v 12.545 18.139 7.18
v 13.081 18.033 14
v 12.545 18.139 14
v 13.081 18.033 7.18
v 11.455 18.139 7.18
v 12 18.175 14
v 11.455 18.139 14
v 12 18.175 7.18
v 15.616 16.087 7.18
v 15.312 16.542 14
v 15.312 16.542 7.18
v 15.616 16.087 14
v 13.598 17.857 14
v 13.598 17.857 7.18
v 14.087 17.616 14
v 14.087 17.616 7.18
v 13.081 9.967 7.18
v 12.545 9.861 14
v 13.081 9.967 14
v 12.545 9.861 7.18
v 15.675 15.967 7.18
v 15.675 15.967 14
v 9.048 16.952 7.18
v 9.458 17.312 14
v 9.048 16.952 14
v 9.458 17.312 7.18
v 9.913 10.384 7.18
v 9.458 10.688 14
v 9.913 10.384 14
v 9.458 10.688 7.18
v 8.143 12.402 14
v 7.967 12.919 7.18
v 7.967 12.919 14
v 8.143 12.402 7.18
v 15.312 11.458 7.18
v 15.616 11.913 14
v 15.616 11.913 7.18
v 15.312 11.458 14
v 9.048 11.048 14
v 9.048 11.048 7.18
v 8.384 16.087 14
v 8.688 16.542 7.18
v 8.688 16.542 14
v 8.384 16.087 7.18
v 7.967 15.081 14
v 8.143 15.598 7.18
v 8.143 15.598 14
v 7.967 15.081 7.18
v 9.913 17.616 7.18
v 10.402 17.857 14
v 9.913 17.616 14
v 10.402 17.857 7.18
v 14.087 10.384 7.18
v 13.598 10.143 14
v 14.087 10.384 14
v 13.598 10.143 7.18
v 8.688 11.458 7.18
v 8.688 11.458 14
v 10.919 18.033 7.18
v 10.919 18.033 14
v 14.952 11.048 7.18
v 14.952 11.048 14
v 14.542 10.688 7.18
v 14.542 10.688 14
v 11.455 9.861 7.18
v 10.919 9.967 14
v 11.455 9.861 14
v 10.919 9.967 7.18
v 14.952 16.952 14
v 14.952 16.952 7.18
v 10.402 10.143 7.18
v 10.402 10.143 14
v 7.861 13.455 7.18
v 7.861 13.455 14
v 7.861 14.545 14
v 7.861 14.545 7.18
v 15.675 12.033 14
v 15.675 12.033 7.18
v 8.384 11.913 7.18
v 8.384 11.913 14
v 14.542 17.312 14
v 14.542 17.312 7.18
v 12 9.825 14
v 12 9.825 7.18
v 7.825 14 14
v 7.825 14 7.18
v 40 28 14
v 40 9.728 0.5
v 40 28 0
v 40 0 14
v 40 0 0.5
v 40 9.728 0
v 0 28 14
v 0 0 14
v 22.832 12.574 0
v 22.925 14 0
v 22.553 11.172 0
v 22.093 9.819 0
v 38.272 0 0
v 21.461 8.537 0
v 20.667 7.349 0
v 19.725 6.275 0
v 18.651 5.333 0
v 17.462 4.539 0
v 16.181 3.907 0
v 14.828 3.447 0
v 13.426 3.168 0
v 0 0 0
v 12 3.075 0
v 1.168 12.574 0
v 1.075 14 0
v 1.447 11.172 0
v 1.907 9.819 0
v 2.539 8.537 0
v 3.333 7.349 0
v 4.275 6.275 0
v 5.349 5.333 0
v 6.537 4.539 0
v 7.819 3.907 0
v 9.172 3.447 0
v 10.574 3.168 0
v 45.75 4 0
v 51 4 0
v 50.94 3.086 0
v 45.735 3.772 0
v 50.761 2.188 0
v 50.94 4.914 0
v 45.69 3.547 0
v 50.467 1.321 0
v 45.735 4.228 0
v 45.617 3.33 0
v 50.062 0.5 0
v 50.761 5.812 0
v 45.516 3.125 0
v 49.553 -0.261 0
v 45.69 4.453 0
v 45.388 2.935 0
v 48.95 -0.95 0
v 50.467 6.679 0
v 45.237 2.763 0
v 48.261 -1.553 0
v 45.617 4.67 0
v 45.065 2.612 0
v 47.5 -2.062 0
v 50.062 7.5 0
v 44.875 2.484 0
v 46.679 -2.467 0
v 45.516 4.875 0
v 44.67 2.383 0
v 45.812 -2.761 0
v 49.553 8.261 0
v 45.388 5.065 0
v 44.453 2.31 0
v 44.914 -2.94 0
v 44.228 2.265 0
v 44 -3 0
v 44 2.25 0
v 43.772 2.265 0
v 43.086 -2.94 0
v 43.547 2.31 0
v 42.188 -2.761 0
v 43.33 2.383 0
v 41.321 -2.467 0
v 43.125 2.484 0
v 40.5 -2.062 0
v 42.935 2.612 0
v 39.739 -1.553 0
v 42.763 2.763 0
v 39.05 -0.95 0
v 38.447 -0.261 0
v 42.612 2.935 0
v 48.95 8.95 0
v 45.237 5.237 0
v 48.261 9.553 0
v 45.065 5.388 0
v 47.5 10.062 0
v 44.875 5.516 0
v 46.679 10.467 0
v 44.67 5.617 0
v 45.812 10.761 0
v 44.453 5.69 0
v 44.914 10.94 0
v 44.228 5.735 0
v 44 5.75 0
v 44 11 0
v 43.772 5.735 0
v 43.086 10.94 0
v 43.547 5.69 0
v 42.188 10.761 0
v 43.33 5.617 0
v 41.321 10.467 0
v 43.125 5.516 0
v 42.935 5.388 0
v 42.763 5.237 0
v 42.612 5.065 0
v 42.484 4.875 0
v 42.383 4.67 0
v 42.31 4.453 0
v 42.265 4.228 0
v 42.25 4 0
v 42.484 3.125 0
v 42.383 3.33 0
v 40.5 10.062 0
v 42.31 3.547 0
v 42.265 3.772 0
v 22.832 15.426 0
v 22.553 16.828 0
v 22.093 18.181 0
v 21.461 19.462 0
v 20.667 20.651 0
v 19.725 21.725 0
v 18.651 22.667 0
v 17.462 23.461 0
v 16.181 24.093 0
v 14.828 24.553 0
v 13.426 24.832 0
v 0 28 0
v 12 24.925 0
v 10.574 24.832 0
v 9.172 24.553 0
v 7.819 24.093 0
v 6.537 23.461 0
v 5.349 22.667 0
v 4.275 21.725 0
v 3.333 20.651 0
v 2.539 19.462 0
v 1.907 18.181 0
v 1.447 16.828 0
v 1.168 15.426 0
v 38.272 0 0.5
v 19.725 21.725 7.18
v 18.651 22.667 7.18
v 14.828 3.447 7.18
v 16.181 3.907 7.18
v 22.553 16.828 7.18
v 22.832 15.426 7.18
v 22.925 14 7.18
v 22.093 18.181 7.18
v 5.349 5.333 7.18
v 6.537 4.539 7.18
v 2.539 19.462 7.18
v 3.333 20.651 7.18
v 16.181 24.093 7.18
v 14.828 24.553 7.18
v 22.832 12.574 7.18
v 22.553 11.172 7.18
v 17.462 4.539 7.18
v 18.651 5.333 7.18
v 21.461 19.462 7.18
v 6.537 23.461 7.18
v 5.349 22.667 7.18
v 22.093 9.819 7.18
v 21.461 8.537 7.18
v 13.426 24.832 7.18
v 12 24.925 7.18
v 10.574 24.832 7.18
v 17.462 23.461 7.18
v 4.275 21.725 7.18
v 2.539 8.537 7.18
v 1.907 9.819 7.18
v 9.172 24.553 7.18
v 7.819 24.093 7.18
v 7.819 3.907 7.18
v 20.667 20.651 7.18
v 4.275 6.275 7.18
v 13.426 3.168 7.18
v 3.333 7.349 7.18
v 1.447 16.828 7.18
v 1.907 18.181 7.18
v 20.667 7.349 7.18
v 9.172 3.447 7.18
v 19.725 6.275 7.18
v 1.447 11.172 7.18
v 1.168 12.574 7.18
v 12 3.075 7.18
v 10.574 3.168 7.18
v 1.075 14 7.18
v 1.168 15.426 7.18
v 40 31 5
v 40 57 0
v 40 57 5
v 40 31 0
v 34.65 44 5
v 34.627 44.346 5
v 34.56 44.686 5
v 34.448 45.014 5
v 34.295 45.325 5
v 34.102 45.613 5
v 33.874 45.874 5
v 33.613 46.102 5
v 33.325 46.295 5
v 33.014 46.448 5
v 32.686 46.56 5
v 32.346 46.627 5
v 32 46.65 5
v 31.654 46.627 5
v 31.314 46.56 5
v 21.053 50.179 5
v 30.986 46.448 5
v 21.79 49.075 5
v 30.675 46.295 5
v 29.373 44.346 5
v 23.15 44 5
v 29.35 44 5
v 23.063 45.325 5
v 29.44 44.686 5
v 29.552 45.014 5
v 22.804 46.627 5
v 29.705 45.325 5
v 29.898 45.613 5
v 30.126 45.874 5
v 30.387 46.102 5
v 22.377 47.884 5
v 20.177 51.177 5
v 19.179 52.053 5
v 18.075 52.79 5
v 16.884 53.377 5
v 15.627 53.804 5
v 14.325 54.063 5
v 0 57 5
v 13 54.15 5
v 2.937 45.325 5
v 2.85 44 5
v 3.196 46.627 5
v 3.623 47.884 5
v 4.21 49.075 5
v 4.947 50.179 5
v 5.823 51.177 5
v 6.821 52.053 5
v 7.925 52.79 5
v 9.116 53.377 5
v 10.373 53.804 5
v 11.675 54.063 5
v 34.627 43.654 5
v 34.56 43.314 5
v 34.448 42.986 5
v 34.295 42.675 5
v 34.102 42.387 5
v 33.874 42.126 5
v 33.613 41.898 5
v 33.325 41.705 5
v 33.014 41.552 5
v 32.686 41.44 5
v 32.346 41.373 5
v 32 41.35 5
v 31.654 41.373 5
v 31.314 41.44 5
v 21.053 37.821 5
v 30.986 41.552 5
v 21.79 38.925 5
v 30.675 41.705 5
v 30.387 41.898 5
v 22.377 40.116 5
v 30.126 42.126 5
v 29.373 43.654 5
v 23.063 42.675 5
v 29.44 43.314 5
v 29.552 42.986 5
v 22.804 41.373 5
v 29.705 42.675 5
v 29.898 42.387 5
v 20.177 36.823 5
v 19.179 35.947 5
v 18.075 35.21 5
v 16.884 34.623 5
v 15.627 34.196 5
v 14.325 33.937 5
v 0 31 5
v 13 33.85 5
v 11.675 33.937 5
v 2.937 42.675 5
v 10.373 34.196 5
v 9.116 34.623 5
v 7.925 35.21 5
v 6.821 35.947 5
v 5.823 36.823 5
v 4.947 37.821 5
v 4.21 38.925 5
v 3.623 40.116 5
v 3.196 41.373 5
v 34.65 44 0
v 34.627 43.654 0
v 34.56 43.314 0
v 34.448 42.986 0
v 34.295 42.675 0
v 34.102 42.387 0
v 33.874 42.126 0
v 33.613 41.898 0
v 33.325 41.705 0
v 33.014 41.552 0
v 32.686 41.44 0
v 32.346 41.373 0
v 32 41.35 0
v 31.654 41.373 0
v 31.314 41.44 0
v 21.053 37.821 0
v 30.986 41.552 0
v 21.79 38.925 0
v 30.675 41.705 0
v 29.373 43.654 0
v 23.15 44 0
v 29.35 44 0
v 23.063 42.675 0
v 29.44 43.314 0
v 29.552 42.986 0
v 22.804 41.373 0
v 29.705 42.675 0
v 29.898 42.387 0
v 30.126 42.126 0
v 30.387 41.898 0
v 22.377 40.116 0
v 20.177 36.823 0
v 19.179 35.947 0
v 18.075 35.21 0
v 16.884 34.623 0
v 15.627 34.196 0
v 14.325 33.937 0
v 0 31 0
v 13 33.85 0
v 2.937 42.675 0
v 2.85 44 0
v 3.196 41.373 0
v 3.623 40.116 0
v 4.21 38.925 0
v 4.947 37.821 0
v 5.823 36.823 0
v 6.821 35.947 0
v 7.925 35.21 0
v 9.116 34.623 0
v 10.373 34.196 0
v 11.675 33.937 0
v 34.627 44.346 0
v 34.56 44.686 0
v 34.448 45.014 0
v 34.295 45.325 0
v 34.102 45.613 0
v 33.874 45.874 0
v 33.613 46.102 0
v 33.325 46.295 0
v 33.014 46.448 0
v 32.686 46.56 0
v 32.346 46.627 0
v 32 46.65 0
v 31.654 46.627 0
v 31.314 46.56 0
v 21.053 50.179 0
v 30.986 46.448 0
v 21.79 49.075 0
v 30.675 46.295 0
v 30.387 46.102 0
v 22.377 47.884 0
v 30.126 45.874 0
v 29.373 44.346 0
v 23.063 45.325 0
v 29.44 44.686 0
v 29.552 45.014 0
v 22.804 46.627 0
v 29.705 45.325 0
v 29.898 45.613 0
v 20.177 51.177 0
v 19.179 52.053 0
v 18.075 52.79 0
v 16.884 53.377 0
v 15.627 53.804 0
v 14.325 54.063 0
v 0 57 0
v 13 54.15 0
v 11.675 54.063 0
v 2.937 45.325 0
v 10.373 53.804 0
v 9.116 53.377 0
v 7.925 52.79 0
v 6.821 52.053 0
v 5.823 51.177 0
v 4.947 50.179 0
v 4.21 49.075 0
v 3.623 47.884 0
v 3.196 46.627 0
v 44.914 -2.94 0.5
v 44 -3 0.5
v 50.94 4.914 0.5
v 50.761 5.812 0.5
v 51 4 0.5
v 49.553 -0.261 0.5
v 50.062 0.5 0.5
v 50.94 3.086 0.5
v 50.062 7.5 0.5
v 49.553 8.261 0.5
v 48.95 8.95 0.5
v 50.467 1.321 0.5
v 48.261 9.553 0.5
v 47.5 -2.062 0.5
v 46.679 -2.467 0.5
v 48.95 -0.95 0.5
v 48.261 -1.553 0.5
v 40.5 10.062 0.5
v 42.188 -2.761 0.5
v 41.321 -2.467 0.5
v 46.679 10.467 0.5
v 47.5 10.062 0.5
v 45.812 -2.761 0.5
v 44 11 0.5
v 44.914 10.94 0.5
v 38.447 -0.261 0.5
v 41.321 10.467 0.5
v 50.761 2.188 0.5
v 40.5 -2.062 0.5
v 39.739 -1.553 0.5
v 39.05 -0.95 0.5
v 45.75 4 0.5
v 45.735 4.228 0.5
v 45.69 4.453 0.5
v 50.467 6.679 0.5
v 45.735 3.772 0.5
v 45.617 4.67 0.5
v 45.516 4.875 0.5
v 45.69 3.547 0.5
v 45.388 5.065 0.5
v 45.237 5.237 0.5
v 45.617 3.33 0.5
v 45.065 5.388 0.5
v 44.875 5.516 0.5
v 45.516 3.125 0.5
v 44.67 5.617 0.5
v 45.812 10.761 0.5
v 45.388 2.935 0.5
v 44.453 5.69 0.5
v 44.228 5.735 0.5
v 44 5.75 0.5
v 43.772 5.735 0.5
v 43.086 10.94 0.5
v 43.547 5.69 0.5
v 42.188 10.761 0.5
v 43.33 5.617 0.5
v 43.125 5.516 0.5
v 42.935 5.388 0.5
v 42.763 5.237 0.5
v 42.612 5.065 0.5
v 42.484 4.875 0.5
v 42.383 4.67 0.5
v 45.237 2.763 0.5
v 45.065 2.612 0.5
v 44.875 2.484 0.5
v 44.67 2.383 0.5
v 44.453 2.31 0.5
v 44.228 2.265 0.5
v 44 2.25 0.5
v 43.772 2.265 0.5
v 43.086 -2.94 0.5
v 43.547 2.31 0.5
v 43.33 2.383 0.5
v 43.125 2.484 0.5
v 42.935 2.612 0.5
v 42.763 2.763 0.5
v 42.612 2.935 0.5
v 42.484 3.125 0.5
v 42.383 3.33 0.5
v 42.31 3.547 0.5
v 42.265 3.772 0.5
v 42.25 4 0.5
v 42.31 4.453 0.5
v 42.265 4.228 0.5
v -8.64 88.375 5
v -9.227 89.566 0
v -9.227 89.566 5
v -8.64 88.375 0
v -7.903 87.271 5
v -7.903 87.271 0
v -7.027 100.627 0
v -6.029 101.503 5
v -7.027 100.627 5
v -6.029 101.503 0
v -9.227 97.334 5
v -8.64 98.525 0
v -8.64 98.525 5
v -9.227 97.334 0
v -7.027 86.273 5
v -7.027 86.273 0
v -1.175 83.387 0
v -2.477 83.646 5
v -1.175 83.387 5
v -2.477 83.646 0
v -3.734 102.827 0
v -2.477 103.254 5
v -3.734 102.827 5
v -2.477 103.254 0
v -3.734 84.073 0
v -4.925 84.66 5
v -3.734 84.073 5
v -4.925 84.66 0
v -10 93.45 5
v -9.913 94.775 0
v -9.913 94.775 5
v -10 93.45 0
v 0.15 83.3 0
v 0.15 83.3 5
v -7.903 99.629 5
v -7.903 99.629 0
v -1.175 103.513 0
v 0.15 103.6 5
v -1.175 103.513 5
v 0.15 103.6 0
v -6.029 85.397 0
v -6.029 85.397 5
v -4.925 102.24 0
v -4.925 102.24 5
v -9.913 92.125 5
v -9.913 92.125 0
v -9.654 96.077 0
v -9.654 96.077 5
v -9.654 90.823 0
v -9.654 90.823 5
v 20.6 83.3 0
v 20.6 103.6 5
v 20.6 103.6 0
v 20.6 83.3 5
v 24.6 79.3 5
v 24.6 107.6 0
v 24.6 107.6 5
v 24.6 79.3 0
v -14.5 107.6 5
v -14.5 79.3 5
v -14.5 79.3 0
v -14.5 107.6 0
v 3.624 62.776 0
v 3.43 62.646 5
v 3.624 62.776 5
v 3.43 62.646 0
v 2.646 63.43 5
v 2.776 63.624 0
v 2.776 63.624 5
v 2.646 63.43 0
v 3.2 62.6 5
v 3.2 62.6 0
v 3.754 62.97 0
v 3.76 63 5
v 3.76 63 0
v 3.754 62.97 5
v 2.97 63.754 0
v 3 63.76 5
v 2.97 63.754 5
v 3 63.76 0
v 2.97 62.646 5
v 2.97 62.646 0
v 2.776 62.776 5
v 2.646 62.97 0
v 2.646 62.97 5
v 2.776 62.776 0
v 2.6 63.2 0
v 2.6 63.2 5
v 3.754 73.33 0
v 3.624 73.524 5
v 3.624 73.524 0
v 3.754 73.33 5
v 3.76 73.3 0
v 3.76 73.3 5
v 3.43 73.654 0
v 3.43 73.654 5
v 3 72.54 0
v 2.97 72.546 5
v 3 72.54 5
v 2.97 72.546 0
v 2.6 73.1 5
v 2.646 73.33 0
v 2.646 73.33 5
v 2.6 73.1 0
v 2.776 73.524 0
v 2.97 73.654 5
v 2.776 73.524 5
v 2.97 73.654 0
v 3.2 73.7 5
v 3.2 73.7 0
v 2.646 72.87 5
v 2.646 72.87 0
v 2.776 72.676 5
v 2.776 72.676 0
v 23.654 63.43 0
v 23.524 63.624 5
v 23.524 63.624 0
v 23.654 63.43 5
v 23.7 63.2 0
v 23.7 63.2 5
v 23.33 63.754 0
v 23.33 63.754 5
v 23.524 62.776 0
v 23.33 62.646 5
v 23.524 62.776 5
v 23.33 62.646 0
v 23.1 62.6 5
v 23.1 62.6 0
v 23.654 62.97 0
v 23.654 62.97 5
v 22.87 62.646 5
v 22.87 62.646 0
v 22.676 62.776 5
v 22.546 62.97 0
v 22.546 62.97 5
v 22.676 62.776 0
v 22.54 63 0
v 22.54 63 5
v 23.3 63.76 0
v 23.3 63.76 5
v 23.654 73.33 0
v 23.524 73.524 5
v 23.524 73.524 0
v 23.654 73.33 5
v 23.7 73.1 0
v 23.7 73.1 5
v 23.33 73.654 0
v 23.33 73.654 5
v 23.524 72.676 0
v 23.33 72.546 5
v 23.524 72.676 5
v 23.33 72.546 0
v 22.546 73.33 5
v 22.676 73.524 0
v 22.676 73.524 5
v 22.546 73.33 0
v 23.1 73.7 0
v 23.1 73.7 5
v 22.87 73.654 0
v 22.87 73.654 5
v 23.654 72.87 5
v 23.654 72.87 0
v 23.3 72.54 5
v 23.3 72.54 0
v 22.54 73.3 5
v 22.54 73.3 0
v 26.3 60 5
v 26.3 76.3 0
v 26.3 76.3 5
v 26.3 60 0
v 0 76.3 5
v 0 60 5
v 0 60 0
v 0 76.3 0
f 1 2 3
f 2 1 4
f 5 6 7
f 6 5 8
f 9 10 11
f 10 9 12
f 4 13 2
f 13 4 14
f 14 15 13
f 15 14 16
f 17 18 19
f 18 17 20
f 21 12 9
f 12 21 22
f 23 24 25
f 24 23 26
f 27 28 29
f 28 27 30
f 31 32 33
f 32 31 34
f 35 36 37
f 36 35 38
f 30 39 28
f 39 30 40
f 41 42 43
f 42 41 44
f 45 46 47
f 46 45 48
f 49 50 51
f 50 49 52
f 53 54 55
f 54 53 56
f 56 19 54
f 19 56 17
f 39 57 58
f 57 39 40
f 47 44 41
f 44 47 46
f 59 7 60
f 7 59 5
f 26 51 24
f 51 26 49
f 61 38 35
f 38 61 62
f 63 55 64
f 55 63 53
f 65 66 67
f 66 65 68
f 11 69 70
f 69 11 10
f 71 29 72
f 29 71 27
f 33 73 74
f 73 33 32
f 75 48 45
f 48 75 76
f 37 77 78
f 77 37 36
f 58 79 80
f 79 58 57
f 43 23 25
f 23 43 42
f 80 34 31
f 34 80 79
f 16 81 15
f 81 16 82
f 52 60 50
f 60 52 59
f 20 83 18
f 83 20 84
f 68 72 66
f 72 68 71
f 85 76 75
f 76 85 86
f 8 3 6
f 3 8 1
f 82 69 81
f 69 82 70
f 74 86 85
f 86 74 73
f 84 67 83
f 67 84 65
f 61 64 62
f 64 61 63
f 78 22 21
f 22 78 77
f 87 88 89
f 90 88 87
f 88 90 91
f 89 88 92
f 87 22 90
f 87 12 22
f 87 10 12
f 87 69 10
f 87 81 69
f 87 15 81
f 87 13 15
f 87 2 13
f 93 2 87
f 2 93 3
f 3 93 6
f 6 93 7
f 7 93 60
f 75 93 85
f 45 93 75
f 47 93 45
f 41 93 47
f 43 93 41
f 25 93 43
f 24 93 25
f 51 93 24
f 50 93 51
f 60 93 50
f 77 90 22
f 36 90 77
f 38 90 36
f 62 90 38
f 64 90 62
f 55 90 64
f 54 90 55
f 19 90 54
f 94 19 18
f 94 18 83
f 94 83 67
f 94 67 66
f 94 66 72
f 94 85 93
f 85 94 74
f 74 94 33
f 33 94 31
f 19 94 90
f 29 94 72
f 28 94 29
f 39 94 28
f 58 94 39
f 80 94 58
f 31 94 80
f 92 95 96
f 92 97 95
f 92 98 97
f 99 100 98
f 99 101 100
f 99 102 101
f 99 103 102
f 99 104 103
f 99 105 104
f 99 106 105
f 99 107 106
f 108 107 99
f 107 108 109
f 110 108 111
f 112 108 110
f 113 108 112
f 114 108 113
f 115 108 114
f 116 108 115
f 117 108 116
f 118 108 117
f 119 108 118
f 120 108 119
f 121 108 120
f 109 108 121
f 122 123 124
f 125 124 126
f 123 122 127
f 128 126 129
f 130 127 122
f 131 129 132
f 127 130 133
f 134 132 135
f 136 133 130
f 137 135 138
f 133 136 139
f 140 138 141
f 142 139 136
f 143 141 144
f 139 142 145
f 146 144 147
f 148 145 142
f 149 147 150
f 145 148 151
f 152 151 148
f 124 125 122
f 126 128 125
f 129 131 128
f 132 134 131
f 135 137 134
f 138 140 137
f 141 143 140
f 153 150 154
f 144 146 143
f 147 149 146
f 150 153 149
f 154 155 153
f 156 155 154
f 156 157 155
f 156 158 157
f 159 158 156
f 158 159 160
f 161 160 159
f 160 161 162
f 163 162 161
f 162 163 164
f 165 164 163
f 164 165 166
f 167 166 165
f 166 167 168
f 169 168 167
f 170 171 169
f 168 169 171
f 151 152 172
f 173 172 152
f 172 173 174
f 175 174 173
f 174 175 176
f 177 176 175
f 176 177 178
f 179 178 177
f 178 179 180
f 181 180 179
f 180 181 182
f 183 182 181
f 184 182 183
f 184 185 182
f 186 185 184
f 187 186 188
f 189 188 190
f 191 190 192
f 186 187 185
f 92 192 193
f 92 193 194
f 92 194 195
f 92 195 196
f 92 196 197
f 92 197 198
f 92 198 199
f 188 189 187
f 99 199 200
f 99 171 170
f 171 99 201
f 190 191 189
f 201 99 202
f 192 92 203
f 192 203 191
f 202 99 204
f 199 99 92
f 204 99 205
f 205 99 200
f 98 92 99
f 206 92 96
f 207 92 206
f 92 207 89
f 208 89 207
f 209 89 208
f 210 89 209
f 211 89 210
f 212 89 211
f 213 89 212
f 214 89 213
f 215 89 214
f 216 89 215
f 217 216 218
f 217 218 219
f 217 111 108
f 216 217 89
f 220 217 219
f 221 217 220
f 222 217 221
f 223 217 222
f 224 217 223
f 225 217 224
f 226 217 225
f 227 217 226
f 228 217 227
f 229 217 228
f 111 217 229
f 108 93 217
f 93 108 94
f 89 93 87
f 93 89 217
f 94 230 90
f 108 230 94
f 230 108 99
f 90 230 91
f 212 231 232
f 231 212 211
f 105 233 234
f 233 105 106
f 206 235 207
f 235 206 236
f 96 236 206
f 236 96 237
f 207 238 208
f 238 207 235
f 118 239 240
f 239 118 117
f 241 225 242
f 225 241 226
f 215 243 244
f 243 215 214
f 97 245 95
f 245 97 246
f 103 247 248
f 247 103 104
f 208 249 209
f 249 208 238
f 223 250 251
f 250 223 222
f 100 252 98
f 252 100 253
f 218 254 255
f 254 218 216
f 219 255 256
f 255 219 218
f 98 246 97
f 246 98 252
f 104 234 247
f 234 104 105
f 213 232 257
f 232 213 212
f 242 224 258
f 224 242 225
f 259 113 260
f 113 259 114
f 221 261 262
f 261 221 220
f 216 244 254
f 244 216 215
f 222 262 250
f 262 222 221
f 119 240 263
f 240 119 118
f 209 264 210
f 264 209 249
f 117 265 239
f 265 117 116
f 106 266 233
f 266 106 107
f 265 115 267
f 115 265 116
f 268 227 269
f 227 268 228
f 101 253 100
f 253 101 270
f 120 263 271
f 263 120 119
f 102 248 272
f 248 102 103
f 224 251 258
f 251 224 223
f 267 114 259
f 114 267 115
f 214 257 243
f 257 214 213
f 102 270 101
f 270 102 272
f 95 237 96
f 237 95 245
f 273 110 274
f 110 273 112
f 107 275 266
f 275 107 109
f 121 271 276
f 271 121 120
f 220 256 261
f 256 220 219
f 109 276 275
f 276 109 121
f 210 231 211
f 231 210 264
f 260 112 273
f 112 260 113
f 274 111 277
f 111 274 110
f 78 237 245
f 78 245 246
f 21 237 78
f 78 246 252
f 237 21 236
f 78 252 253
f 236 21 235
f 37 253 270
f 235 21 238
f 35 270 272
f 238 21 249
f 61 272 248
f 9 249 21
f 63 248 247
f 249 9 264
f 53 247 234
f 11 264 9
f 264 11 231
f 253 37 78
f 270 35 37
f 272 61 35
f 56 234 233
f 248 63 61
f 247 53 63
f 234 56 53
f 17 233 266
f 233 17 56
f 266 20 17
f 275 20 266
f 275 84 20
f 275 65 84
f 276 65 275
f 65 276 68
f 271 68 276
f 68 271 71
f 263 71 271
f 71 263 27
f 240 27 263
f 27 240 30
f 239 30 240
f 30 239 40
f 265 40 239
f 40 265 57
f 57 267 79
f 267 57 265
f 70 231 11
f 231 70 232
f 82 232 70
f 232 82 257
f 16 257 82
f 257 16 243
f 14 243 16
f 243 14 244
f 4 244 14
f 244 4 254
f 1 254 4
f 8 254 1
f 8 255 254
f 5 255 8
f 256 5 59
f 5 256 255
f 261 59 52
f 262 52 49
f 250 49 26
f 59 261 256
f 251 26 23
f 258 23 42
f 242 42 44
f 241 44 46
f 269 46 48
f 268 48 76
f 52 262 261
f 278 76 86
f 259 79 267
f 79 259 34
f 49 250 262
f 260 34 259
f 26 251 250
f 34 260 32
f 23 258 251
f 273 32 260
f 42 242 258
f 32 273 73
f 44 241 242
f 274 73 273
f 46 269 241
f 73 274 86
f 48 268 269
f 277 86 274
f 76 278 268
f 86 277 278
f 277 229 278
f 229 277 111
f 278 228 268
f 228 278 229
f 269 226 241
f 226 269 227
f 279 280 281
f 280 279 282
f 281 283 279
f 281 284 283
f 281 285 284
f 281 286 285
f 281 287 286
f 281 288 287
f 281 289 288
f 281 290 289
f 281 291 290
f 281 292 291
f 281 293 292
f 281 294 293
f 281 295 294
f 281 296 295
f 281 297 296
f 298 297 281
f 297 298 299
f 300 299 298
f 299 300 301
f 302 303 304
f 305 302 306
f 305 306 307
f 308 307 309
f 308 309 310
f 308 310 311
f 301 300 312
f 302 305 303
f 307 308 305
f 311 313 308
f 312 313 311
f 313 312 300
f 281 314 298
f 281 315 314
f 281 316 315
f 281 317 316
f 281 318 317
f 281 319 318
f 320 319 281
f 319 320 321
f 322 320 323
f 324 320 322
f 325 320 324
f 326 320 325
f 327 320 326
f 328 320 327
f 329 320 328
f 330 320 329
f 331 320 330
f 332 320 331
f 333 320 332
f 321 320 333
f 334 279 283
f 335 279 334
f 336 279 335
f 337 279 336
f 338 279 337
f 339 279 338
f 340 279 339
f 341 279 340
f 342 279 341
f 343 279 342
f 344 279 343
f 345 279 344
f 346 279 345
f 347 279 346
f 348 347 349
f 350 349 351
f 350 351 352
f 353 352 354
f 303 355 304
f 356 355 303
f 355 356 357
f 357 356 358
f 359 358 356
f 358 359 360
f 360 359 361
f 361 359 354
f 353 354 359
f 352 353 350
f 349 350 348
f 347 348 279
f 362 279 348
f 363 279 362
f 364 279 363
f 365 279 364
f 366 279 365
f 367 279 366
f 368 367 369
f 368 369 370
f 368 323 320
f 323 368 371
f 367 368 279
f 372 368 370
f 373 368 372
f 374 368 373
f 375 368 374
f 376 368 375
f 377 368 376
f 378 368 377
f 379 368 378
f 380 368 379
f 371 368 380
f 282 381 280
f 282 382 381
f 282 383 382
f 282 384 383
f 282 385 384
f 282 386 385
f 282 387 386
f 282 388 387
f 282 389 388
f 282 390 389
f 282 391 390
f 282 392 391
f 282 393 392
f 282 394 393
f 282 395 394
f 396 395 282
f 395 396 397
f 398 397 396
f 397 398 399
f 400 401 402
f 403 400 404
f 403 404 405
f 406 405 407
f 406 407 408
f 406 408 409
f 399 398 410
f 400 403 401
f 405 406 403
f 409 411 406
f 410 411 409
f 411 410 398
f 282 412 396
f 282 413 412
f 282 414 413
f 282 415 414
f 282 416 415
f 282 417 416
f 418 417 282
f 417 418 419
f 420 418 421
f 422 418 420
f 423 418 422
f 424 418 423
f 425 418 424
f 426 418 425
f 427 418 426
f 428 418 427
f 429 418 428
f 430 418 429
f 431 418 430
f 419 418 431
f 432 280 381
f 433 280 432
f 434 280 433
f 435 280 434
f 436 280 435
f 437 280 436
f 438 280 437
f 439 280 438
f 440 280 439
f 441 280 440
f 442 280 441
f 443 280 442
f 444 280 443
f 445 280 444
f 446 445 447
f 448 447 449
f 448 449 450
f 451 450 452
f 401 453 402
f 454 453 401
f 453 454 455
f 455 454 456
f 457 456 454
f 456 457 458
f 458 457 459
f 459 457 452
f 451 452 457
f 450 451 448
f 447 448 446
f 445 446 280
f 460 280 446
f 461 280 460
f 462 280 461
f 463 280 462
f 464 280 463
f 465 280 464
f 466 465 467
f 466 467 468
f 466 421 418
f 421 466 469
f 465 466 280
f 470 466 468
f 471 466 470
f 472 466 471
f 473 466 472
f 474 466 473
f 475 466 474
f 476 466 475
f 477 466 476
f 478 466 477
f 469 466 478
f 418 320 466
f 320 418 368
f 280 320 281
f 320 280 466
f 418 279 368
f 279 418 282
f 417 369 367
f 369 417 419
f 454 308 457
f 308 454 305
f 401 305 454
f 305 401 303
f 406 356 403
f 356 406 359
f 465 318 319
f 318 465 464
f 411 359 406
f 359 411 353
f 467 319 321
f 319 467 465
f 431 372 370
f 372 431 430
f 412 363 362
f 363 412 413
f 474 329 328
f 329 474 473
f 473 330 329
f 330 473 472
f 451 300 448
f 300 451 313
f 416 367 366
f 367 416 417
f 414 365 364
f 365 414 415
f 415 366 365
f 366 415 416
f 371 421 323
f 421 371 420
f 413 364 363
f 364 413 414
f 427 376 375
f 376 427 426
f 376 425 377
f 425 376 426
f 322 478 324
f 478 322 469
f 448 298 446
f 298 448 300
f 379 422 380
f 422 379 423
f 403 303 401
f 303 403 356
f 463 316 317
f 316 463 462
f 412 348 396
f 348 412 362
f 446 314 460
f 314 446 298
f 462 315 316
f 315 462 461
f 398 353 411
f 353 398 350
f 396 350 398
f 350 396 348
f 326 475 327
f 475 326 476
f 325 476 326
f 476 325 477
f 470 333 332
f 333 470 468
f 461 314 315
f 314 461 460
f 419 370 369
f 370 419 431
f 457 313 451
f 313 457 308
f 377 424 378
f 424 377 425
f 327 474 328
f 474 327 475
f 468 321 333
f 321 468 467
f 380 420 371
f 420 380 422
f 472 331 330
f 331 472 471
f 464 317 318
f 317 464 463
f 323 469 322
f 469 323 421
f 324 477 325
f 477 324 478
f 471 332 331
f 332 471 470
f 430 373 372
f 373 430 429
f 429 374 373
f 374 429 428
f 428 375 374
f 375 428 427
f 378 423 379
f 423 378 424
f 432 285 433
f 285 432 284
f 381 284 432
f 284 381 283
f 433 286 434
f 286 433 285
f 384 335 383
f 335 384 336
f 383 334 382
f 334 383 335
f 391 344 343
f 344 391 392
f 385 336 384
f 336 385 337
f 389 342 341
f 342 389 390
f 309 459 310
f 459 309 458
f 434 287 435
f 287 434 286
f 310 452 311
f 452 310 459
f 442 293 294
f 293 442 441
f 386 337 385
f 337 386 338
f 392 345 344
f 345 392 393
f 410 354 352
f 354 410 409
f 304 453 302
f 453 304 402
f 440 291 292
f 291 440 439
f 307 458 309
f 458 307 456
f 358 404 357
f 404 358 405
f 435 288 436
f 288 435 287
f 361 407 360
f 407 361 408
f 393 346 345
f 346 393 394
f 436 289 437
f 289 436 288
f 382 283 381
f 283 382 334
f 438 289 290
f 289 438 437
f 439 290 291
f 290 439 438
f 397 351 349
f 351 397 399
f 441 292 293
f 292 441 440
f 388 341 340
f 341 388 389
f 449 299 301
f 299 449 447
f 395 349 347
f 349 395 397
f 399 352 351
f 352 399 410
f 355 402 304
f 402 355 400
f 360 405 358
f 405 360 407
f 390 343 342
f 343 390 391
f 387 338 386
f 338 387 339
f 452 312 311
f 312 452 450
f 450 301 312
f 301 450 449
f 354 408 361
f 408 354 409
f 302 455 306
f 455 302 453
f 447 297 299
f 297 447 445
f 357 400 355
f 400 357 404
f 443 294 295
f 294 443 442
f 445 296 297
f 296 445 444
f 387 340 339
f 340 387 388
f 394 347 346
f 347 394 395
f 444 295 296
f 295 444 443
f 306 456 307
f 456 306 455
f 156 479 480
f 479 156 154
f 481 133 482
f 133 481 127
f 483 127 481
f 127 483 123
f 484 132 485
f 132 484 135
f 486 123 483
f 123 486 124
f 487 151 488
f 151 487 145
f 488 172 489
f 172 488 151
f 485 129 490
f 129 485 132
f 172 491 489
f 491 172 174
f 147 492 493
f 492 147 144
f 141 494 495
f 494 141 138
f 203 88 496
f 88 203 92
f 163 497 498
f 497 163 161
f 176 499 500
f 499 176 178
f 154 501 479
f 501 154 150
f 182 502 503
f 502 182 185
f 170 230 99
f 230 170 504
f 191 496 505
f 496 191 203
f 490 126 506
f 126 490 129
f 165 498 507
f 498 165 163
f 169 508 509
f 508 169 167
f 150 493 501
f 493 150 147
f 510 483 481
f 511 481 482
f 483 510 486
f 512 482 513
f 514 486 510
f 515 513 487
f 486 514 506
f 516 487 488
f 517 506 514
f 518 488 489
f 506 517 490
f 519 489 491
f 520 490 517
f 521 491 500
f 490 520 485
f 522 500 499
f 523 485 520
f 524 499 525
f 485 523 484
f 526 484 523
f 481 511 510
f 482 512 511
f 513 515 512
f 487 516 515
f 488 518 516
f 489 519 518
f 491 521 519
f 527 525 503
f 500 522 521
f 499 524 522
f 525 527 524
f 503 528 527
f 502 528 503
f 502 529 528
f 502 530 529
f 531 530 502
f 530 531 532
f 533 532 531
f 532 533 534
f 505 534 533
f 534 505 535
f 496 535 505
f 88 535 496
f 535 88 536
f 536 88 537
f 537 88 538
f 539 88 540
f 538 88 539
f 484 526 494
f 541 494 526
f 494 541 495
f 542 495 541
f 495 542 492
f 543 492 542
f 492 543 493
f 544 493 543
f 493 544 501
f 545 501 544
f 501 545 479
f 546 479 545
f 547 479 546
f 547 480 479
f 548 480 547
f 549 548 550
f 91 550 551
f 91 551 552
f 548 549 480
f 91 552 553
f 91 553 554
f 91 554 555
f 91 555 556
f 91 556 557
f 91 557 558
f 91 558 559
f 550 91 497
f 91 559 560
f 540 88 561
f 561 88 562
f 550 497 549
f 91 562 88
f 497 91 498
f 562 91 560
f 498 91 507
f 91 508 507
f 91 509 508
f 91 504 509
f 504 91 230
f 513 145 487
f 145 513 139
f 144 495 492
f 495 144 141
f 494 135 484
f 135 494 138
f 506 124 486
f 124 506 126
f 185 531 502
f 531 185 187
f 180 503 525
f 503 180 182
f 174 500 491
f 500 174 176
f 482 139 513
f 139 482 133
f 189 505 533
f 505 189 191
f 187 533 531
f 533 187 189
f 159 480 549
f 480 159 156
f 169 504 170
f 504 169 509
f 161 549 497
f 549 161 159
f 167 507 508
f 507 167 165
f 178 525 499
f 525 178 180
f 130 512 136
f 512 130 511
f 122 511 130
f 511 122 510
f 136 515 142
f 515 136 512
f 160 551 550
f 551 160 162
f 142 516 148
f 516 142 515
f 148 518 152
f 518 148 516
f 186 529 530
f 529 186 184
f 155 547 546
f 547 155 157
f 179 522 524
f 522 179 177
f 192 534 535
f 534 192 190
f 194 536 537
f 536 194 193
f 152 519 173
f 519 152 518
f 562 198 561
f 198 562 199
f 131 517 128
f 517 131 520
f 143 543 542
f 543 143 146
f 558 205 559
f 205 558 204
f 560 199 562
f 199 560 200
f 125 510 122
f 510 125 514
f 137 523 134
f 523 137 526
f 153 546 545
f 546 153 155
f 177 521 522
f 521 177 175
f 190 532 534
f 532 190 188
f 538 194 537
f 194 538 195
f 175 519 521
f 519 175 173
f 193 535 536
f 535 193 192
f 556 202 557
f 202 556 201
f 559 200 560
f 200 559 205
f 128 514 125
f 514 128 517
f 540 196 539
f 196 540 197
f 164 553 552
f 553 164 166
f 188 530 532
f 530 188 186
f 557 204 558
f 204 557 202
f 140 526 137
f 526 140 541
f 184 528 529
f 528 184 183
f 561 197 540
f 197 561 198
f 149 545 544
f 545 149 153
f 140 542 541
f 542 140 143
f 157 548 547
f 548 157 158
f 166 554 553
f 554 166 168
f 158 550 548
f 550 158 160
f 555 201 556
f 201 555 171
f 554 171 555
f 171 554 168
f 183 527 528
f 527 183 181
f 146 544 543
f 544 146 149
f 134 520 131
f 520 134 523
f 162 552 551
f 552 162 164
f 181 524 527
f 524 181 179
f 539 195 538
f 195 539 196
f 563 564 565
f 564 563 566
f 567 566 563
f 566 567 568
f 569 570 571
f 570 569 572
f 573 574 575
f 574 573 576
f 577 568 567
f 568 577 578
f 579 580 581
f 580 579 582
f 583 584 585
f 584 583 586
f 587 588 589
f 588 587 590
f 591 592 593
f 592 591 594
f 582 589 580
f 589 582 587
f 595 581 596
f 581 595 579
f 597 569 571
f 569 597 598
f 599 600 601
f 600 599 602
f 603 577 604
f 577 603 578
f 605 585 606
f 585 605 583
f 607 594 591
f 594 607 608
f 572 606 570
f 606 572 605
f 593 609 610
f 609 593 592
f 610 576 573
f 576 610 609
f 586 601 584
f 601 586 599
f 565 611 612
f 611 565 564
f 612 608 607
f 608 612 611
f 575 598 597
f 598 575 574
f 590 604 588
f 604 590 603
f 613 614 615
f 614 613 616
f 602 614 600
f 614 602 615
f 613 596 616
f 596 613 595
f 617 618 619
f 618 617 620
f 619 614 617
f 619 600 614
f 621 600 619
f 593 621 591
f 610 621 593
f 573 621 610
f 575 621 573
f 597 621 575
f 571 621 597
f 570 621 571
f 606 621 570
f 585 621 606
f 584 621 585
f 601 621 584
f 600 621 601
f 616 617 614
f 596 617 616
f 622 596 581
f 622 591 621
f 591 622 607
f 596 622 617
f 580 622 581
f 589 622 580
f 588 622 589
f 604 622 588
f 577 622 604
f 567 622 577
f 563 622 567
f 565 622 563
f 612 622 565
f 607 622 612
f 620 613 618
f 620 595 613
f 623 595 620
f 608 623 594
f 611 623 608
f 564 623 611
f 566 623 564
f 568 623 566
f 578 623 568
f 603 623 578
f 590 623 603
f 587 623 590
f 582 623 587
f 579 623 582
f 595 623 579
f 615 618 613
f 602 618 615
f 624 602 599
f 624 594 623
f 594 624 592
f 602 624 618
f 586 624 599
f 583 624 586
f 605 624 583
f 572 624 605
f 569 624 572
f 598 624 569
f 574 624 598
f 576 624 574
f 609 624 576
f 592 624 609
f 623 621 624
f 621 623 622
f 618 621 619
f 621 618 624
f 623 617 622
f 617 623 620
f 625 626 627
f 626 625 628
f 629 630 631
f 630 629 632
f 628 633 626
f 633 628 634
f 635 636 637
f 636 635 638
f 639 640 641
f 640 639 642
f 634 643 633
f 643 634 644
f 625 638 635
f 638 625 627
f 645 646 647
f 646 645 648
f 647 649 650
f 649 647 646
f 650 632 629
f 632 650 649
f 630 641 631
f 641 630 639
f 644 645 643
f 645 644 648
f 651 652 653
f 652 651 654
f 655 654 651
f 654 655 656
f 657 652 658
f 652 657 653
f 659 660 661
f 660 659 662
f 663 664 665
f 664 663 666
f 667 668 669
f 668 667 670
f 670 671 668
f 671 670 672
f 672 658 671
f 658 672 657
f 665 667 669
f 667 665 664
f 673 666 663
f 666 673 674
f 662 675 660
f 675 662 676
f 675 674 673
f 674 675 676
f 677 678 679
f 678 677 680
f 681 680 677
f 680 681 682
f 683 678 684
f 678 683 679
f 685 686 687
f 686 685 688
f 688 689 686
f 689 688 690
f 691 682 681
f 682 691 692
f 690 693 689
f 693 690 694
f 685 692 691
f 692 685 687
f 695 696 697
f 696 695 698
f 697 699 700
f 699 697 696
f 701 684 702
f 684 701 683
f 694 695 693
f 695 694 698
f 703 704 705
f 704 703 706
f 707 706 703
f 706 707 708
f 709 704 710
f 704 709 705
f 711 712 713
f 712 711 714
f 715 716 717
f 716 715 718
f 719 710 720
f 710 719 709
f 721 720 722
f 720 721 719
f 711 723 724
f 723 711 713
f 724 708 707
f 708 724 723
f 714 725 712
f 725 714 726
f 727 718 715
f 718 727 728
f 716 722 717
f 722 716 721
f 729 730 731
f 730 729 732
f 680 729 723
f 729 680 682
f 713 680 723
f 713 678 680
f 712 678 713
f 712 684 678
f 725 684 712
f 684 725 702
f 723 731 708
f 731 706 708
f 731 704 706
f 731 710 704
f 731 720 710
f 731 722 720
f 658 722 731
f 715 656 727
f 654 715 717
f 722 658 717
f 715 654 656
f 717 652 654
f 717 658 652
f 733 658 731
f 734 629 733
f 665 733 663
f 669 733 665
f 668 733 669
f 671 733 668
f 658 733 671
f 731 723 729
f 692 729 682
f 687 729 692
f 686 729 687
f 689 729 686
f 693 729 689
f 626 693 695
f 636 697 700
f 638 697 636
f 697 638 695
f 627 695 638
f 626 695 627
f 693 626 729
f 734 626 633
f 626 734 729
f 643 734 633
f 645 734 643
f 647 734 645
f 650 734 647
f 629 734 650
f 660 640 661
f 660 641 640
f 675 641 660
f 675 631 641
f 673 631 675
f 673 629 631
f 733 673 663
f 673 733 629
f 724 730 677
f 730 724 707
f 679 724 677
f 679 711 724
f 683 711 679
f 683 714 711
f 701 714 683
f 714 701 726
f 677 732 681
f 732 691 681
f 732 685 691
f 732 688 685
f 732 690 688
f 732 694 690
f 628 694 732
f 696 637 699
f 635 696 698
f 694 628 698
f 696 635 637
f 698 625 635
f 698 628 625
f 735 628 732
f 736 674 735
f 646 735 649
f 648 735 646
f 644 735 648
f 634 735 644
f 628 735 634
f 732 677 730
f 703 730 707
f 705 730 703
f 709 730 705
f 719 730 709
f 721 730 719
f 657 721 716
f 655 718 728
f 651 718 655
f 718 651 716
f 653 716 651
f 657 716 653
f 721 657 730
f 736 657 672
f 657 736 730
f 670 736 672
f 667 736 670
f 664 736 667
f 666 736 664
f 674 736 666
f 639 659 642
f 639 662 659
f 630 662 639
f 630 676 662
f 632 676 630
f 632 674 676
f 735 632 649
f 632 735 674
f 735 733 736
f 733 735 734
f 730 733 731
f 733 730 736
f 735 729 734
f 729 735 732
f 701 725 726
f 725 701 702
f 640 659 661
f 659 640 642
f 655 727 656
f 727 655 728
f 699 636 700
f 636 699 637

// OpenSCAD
// Gen-CQ — fit coupon: O20/O5 THROUGH pockets at carrier thickness (test on a steel offcut), 608 seat,
// D-flat bore, gap shim, and one bobbin-bay slice (bobbin footprint + bay_clear) to test former fit.
include <parameters.scad>;
$fn = 48;
// D-flat keyed bore: flat faces +X (angle 0 = magnet pocket 0 = index notch)
module dflat_bore(h) {
    intersection() {
        cylinder(d=shaft_bore, h=h);
        translate([-shaft_bore, -shaft_bore, 0]) cube([shaft_bore + dflat_x, 2*shaft_bore, h]);
    }
}
module sector_2d(r_in, r_out, ang) {
    polygon([
        for (a = [-ang/2 : ang/24 : ang/2]) [r_in*cos(a), r_in*sin(a)],
        for (a = [ang/2 : -ang/24 : -ang/2]) [r_out*cos(a), r_out*sin(a)]
    ]);
}
module footprint_2d() { offset(r=wall) sector_2d(coil_id_r, coil_od_r, span_deg); }
module hub_2d()       { offset(delta=-coil_core_inset) sector_2d(coil_id_r, coil_od_r, span_deg); }

block_w = 40; block_d = 28; block_h = 14;
difference() {
    cube([block_w, block_d, block_h]);
    translate([12, block_d/2, -0.02]) cylinder(d=bearing_d, h=bearing_h);
    translate([12, block_d/2, -0.1]) dflat_bore(block_h + 1);
}
translate([0, block_d + 3, 0]) difference() {
    cube([40, 26, carrier_thick]);
    translate([13, 13, -0.1]) cylinder(d=large_pocket_d, h=carrier_thick + 0.2);
    translate([32, 13, -0.1]) cylinder(d=small_pocket_d, h=carrier_thick + 0.2);
}
translate([block_w + 4, 4, 0])
    difference() {
        cylinder(d=spacer_pad_od, h=gap_spacer_h);
        translate([0, 0, -0.1]) cylinder(d=spacer_pad_id, h=gap_spacer_h + 0.2);
    }
// KEYHOLE pole pocket test (2026-10-18): O20 disc pocket + N42 20x10x5 block pocket merged (hull), as on the arcs.
// Drop a disc and a block in: they must push each other onto the two far walls and sit flat. Block pocket has corner reliefs.
translate([0, block_d + 3 + 26 + 3 + block_radial + block_pocket_clear + 6 + 3 + max(block_tangential, large_pocket_d) / 2 + 4, 0]) difference() {
    translate([-14.5, -(max(block_tangential, large_pocket_d) / 2 + 4), 0]) cube([14.5 + abs(block_R_list[0] - R_large) + block_radial / 2 + 4, max(block_tangential, large_pocket_d) + 8, carrier_thick]);
    translate([0, 0, -0.1]) {
        translate([disc_pocket_shift * sign(block_R_list[0] - R_large), 0, 0]) cylinder(d=large_pocket_d, h=carrier_thick + 0.2);
        translate([disc_pocket_shift * sign(block_R_list[0] - R_large), -(block_tangential + block_pocket_clear)/2, 0])
            cube([abs(block_R_list[0] - R_large) - abs(block_pocket_shift) + (block_radial + block_pocket_clear)/2 - disc_pocket_shift * sign(block_R_list[0] - R_large), block_tangential + block_pocket_clear, carrier_thick + 0.2]);
    }
}
// N42 20x10x5 BLOCK through-pocket test (block + block_pocket_clear, 1.2 mm corner reliefs), 2026-10-16
translate([0, block_d + 3 + 26 + 3, 0]) difference() {
    cube([block_tangential + block_pocket_clear + 6, block_radial + block_pocket_clear + 6, carrier_thick]);
    translate([3, 3, -0.1]) cube([block_tangential + block_pocket_clear, block_radial + block_pocket_clear, carrier_thick + 0.2]);
    for (x = [3.2, 3 + block_tangential + block_pocket_clear - 0.2], y = [3.2, 3 + block_radial + block_pocket_clear - 0.2])
        translate([x, y, -0.1]) cylinder(d=1.2, h=carrier_thick + 0.2, $fn=16);
}
